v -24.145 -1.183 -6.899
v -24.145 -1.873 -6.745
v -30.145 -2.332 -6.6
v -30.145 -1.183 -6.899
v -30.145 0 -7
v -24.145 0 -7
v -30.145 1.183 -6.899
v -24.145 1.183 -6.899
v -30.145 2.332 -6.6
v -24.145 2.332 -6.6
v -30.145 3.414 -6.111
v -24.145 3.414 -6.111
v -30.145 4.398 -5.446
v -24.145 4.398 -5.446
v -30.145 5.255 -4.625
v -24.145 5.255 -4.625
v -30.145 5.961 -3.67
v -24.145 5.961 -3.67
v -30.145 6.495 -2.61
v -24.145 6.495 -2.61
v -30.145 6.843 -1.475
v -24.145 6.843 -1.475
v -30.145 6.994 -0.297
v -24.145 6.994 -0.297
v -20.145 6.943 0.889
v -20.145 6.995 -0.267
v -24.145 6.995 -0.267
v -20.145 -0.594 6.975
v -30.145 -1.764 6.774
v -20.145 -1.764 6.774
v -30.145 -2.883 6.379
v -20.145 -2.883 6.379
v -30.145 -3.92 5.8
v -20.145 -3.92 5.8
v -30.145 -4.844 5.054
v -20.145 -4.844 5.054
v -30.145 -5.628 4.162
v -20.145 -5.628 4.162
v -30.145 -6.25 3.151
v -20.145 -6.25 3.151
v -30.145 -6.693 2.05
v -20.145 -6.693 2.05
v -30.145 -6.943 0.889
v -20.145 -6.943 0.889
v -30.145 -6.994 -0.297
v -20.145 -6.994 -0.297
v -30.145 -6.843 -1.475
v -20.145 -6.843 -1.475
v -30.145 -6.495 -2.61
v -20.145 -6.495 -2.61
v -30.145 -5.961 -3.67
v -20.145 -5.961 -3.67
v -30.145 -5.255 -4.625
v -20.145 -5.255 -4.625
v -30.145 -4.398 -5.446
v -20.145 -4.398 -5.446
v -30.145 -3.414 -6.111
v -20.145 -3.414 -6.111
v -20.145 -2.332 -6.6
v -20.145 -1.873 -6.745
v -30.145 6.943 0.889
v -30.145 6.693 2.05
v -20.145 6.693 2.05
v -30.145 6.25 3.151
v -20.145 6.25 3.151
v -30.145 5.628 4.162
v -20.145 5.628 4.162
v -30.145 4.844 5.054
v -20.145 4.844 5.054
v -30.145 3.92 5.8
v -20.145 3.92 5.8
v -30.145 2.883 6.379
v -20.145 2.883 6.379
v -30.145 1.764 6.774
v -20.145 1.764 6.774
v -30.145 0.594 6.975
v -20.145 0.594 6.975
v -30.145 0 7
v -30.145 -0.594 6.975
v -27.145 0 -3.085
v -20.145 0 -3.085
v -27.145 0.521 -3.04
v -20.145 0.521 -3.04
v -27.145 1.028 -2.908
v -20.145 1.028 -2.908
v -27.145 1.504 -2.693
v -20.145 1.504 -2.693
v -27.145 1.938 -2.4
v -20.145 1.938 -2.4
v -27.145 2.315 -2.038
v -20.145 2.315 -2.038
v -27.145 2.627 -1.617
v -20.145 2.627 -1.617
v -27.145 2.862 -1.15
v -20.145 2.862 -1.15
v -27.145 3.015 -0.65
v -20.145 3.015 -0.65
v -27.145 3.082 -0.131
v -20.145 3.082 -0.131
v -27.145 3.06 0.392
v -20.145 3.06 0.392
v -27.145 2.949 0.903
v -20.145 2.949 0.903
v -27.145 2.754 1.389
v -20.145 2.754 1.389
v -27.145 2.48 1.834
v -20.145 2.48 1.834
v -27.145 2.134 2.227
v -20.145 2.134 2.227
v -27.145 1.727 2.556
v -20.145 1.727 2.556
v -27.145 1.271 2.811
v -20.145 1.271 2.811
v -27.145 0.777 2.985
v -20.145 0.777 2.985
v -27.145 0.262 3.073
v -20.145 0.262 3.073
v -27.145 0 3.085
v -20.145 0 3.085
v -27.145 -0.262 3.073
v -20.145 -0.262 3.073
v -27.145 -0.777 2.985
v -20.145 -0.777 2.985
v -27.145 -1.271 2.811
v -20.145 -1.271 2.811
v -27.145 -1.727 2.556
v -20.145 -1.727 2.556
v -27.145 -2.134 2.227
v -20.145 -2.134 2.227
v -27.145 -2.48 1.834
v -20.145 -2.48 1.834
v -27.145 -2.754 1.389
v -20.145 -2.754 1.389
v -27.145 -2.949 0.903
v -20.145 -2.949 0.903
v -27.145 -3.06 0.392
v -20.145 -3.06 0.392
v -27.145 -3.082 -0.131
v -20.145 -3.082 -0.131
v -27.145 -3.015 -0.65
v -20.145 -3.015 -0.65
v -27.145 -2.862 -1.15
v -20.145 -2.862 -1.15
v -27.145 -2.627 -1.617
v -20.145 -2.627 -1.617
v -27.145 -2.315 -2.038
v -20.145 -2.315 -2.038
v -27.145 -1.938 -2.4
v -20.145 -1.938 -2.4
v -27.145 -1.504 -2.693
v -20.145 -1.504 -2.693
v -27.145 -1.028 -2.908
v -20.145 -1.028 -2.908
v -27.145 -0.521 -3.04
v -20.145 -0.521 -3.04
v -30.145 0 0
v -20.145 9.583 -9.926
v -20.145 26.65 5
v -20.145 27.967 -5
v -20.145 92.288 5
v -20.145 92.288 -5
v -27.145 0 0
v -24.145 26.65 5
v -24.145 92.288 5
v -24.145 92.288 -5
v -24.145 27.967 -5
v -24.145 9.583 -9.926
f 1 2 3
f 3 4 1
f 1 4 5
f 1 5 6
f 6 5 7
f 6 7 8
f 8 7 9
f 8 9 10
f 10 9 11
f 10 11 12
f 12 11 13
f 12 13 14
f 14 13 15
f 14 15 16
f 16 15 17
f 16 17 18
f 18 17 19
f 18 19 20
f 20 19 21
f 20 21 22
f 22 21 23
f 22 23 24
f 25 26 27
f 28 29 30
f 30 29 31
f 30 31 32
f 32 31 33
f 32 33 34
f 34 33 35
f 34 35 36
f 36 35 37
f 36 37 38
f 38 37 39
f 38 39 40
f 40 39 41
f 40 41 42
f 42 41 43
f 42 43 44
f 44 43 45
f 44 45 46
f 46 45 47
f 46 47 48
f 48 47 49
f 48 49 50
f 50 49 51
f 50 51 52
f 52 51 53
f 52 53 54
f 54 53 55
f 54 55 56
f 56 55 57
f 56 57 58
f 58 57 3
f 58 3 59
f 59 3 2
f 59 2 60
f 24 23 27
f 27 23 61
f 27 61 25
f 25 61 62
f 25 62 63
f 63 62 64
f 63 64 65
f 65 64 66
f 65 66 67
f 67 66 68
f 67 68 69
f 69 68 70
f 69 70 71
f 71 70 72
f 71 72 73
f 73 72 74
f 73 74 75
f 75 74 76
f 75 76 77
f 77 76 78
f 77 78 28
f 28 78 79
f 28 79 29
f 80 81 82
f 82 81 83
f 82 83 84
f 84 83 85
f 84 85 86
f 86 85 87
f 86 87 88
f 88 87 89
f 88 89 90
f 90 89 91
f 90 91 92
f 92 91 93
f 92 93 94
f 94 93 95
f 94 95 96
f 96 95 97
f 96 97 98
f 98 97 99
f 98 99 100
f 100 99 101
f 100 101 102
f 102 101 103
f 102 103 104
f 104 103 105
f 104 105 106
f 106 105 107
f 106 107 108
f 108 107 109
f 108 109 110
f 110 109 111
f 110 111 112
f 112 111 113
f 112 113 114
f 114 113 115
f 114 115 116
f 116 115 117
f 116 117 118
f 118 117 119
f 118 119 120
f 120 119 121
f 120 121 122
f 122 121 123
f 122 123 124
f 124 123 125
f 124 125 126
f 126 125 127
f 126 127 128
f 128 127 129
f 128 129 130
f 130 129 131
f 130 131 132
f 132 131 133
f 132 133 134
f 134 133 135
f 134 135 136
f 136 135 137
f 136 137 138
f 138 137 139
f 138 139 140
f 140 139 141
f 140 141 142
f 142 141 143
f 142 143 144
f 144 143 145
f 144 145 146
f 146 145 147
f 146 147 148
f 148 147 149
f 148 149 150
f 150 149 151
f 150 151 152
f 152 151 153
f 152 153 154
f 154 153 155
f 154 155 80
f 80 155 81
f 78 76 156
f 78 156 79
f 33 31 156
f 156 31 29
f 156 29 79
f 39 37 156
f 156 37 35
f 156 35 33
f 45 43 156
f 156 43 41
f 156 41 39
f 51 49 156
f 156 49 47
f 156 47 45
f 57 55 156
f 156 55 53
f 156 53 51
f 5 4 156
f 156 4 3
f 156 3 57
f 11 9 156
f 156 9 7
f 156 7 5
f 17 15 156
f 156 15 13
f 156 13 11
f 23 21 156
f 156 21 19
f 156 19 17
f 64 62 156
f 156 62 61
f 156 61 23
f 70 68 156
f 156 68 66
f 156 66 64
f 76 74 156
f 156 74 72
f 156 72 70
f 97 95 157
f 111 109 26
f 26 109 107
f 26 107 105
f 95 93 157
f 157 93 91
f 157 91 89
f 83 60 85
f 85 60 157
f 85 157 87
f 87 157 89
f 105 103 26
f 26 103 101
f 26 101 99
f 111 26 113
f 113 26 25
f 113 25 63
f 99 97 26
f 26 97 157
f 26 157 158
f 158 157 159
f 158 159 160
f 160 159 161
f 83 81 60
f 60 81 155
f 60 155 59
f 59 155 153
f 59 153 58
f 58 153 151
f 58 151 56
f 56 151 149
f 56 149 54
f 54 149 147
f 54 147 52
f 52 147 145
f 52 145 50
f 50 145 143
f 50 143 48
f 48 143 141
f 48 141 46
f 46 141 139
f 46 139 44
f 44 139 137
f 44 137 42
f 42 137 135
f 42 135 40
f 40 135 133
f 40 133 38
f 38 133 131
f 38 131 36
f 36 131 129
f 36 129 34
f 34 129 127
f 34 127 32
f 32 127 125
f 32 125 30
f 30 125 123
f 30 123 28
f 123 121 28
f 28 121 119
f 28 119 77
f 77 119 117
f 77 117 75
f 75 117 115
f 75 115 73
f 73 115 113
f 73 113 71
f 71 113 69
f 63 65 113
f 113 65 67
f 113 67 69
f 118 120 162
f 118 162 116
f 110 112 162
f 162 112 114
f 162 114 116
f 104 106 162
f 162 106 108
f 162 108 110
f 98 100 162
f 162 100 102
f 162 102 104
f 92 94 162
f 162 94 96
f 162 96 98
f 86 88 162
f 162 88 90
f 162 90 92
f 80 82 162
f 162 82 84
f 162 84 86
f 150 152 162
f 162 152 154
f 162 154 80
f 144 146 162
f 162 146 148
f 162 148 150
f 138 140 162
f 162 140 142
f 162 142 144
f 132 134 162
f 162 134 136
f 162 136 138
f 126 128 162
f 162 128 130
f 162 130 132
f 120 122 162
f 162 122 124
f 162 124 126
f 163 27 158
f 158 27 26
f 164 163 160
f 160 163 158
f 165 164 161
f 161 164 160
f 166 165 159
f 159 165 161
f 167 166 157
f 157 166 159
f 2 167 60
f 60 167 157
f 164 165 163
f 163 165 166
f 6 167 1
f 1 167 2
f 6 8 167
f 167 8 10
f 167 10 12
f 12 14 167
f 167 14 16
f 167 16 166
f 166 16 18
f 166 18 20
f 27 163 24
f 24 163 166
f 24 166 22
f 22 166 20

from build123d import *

# Parameters (mm, degrees)
SKETCH1_R           = 7
SKETCH1_R_2         = 3.0845
BOSS_EXTRUDE1_DEPTH = 10
BOSS_EXTRUDE2_START = 7
SKETCH1_3_R         = 7
BOSS_EXTRUDE2_DEPTH = 3
BOSS_EXTRUDE3_DEPTH = 4


with BuildPart() as part:
    # Sketch1 → Boss-Extrude1 (new body)
    with BuildSketch(Plane.ZY.offset(20.145)):
        Circle(SKETCH1_R)
        Circle(SKETCH1_R_2, mode=Mode.SUBTRACT)
    extrude(amount=BOSS_EXTRUDE1_DEPTH)

    # Sketch1<3> → Boss-Extrude2 (add)
    with BuildSketch(Plane.ZY.offset(20.145).offset(BOSS_EXTRUDE2_START)):
        Circle(SKETCH1_3_R)
    extrude(amount=BOSS_EXTRUDE2_DEPTH)

    # Sketch1<5> → Boss-Extrude3 (add)
    with BuildSketch(Plane.ZY.offset(20.145)):
        with BuildLine():
            Line((-5, 92.287872085), (-5, 27.967015644))
            Line((-5, 27.967015644), (-9.925953163, 9.583108165))
            Line((-9.925953163, 9.583108165), (-6.744787083, -1.872924772))
            ThreePointArc((-6.744787083, -1.872924772), (-5.652422268, 4.129179399), (-0.2666949, 6.994917714))
            Line((-0.2666949, 6.994917714), (5, 26.650490668))
            Line((5, 26.650490668), (5, 92.287872085))
            Line((5, 92.287872085), (-5, 92.287872085))
        make_face()
    extrude(amount=BOSS_EXTRUDE3_DEPTH)


solid = part.part
